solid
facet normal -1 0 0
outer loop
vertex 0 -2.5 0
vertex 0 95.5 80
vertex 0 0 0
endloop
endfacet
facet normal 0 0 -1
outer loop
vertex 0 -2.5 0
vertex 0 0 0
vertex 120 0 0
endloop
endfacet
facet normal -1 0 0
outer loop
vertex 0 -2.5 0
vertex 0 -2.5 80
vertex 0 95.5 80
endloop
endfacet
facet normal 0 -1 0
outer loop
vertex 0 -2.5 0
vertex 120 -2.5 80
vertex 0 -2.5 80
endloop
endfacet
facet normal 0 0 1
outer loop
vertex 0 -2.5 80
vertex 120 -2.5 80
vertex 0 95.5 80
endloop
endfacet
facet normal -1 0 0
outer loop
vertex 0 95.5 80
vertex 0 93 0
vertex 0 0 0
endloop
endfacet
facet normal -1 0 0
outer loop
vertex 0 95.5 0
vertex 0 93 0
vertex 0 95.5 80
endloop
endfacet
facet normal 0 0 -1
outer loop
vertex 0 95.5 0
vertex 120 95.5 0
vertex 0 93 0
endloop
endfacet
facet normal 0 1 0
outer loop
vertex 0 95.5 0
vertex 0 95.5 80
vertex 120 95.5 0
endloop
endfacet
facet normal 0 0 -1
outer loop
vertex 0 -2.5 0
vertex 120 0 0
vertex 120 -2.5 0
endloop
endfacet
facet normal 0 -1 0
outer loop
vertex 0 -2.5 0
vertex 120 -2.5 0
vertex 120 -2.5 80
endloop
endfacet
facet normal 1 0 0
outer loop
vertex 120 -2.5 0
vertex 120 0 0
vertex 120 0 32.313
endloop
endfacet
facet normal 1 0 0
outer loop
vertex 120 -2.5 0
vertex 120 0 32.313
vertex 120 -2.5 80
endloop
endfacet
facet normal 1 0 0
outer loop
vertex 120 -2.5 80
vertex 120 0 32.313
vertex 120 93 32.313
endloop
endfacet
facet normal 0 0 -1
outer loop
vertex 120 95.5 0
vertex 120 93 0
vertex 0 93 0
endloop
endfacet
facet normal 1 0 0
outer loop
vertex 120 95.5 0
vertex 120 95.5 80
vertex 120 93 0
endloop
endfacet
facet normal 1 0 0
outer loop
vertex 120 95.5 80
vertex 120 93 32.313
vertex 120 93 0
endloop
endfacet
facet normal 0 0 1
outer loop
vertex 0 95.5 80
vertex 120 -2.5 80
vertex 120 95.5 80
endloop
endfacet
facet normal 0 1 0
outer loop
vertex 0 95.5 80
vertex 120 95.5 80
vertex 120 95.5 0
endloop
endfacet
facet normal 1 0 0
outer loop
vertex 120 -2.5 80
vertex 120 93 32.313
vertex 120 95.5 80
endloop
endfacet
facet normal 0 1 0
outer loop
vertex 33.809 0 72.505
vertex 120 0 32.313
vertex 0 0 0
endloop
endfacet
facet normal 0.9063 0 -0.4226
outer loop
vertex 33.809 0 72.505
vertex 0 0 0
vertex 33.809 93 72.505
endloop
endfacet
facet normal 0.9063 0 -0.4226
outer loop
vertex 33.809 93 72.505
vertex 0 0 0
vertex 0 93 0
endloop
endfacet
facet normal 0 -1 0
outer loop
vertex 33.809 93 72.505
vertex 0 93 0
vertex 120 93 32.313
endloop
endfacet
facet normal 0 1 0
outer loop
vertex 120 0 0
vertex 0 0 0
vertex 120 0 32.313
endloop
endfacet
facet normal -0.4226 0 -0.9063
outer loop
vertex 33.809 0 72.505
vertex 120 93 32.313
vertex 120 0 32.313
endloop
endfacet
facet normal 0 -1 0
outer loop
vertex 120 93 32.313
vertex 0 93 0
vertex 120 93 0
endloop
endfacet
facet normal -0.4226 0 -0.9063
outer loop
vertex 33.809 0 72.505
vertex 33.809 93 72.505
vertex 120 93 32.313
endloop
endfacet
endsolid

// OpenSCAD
bottle_wl = 93;

difference() {
  translate(v=[0, -2.5, 0]) {
    color("red")
      cube(size=[120, bottle_wl + 5, 80], center=false);
  }
  rotate(a=[0, 25, 0]) {
    cube(size=[120, bottle_wl, 80], center=false);
  }
}
